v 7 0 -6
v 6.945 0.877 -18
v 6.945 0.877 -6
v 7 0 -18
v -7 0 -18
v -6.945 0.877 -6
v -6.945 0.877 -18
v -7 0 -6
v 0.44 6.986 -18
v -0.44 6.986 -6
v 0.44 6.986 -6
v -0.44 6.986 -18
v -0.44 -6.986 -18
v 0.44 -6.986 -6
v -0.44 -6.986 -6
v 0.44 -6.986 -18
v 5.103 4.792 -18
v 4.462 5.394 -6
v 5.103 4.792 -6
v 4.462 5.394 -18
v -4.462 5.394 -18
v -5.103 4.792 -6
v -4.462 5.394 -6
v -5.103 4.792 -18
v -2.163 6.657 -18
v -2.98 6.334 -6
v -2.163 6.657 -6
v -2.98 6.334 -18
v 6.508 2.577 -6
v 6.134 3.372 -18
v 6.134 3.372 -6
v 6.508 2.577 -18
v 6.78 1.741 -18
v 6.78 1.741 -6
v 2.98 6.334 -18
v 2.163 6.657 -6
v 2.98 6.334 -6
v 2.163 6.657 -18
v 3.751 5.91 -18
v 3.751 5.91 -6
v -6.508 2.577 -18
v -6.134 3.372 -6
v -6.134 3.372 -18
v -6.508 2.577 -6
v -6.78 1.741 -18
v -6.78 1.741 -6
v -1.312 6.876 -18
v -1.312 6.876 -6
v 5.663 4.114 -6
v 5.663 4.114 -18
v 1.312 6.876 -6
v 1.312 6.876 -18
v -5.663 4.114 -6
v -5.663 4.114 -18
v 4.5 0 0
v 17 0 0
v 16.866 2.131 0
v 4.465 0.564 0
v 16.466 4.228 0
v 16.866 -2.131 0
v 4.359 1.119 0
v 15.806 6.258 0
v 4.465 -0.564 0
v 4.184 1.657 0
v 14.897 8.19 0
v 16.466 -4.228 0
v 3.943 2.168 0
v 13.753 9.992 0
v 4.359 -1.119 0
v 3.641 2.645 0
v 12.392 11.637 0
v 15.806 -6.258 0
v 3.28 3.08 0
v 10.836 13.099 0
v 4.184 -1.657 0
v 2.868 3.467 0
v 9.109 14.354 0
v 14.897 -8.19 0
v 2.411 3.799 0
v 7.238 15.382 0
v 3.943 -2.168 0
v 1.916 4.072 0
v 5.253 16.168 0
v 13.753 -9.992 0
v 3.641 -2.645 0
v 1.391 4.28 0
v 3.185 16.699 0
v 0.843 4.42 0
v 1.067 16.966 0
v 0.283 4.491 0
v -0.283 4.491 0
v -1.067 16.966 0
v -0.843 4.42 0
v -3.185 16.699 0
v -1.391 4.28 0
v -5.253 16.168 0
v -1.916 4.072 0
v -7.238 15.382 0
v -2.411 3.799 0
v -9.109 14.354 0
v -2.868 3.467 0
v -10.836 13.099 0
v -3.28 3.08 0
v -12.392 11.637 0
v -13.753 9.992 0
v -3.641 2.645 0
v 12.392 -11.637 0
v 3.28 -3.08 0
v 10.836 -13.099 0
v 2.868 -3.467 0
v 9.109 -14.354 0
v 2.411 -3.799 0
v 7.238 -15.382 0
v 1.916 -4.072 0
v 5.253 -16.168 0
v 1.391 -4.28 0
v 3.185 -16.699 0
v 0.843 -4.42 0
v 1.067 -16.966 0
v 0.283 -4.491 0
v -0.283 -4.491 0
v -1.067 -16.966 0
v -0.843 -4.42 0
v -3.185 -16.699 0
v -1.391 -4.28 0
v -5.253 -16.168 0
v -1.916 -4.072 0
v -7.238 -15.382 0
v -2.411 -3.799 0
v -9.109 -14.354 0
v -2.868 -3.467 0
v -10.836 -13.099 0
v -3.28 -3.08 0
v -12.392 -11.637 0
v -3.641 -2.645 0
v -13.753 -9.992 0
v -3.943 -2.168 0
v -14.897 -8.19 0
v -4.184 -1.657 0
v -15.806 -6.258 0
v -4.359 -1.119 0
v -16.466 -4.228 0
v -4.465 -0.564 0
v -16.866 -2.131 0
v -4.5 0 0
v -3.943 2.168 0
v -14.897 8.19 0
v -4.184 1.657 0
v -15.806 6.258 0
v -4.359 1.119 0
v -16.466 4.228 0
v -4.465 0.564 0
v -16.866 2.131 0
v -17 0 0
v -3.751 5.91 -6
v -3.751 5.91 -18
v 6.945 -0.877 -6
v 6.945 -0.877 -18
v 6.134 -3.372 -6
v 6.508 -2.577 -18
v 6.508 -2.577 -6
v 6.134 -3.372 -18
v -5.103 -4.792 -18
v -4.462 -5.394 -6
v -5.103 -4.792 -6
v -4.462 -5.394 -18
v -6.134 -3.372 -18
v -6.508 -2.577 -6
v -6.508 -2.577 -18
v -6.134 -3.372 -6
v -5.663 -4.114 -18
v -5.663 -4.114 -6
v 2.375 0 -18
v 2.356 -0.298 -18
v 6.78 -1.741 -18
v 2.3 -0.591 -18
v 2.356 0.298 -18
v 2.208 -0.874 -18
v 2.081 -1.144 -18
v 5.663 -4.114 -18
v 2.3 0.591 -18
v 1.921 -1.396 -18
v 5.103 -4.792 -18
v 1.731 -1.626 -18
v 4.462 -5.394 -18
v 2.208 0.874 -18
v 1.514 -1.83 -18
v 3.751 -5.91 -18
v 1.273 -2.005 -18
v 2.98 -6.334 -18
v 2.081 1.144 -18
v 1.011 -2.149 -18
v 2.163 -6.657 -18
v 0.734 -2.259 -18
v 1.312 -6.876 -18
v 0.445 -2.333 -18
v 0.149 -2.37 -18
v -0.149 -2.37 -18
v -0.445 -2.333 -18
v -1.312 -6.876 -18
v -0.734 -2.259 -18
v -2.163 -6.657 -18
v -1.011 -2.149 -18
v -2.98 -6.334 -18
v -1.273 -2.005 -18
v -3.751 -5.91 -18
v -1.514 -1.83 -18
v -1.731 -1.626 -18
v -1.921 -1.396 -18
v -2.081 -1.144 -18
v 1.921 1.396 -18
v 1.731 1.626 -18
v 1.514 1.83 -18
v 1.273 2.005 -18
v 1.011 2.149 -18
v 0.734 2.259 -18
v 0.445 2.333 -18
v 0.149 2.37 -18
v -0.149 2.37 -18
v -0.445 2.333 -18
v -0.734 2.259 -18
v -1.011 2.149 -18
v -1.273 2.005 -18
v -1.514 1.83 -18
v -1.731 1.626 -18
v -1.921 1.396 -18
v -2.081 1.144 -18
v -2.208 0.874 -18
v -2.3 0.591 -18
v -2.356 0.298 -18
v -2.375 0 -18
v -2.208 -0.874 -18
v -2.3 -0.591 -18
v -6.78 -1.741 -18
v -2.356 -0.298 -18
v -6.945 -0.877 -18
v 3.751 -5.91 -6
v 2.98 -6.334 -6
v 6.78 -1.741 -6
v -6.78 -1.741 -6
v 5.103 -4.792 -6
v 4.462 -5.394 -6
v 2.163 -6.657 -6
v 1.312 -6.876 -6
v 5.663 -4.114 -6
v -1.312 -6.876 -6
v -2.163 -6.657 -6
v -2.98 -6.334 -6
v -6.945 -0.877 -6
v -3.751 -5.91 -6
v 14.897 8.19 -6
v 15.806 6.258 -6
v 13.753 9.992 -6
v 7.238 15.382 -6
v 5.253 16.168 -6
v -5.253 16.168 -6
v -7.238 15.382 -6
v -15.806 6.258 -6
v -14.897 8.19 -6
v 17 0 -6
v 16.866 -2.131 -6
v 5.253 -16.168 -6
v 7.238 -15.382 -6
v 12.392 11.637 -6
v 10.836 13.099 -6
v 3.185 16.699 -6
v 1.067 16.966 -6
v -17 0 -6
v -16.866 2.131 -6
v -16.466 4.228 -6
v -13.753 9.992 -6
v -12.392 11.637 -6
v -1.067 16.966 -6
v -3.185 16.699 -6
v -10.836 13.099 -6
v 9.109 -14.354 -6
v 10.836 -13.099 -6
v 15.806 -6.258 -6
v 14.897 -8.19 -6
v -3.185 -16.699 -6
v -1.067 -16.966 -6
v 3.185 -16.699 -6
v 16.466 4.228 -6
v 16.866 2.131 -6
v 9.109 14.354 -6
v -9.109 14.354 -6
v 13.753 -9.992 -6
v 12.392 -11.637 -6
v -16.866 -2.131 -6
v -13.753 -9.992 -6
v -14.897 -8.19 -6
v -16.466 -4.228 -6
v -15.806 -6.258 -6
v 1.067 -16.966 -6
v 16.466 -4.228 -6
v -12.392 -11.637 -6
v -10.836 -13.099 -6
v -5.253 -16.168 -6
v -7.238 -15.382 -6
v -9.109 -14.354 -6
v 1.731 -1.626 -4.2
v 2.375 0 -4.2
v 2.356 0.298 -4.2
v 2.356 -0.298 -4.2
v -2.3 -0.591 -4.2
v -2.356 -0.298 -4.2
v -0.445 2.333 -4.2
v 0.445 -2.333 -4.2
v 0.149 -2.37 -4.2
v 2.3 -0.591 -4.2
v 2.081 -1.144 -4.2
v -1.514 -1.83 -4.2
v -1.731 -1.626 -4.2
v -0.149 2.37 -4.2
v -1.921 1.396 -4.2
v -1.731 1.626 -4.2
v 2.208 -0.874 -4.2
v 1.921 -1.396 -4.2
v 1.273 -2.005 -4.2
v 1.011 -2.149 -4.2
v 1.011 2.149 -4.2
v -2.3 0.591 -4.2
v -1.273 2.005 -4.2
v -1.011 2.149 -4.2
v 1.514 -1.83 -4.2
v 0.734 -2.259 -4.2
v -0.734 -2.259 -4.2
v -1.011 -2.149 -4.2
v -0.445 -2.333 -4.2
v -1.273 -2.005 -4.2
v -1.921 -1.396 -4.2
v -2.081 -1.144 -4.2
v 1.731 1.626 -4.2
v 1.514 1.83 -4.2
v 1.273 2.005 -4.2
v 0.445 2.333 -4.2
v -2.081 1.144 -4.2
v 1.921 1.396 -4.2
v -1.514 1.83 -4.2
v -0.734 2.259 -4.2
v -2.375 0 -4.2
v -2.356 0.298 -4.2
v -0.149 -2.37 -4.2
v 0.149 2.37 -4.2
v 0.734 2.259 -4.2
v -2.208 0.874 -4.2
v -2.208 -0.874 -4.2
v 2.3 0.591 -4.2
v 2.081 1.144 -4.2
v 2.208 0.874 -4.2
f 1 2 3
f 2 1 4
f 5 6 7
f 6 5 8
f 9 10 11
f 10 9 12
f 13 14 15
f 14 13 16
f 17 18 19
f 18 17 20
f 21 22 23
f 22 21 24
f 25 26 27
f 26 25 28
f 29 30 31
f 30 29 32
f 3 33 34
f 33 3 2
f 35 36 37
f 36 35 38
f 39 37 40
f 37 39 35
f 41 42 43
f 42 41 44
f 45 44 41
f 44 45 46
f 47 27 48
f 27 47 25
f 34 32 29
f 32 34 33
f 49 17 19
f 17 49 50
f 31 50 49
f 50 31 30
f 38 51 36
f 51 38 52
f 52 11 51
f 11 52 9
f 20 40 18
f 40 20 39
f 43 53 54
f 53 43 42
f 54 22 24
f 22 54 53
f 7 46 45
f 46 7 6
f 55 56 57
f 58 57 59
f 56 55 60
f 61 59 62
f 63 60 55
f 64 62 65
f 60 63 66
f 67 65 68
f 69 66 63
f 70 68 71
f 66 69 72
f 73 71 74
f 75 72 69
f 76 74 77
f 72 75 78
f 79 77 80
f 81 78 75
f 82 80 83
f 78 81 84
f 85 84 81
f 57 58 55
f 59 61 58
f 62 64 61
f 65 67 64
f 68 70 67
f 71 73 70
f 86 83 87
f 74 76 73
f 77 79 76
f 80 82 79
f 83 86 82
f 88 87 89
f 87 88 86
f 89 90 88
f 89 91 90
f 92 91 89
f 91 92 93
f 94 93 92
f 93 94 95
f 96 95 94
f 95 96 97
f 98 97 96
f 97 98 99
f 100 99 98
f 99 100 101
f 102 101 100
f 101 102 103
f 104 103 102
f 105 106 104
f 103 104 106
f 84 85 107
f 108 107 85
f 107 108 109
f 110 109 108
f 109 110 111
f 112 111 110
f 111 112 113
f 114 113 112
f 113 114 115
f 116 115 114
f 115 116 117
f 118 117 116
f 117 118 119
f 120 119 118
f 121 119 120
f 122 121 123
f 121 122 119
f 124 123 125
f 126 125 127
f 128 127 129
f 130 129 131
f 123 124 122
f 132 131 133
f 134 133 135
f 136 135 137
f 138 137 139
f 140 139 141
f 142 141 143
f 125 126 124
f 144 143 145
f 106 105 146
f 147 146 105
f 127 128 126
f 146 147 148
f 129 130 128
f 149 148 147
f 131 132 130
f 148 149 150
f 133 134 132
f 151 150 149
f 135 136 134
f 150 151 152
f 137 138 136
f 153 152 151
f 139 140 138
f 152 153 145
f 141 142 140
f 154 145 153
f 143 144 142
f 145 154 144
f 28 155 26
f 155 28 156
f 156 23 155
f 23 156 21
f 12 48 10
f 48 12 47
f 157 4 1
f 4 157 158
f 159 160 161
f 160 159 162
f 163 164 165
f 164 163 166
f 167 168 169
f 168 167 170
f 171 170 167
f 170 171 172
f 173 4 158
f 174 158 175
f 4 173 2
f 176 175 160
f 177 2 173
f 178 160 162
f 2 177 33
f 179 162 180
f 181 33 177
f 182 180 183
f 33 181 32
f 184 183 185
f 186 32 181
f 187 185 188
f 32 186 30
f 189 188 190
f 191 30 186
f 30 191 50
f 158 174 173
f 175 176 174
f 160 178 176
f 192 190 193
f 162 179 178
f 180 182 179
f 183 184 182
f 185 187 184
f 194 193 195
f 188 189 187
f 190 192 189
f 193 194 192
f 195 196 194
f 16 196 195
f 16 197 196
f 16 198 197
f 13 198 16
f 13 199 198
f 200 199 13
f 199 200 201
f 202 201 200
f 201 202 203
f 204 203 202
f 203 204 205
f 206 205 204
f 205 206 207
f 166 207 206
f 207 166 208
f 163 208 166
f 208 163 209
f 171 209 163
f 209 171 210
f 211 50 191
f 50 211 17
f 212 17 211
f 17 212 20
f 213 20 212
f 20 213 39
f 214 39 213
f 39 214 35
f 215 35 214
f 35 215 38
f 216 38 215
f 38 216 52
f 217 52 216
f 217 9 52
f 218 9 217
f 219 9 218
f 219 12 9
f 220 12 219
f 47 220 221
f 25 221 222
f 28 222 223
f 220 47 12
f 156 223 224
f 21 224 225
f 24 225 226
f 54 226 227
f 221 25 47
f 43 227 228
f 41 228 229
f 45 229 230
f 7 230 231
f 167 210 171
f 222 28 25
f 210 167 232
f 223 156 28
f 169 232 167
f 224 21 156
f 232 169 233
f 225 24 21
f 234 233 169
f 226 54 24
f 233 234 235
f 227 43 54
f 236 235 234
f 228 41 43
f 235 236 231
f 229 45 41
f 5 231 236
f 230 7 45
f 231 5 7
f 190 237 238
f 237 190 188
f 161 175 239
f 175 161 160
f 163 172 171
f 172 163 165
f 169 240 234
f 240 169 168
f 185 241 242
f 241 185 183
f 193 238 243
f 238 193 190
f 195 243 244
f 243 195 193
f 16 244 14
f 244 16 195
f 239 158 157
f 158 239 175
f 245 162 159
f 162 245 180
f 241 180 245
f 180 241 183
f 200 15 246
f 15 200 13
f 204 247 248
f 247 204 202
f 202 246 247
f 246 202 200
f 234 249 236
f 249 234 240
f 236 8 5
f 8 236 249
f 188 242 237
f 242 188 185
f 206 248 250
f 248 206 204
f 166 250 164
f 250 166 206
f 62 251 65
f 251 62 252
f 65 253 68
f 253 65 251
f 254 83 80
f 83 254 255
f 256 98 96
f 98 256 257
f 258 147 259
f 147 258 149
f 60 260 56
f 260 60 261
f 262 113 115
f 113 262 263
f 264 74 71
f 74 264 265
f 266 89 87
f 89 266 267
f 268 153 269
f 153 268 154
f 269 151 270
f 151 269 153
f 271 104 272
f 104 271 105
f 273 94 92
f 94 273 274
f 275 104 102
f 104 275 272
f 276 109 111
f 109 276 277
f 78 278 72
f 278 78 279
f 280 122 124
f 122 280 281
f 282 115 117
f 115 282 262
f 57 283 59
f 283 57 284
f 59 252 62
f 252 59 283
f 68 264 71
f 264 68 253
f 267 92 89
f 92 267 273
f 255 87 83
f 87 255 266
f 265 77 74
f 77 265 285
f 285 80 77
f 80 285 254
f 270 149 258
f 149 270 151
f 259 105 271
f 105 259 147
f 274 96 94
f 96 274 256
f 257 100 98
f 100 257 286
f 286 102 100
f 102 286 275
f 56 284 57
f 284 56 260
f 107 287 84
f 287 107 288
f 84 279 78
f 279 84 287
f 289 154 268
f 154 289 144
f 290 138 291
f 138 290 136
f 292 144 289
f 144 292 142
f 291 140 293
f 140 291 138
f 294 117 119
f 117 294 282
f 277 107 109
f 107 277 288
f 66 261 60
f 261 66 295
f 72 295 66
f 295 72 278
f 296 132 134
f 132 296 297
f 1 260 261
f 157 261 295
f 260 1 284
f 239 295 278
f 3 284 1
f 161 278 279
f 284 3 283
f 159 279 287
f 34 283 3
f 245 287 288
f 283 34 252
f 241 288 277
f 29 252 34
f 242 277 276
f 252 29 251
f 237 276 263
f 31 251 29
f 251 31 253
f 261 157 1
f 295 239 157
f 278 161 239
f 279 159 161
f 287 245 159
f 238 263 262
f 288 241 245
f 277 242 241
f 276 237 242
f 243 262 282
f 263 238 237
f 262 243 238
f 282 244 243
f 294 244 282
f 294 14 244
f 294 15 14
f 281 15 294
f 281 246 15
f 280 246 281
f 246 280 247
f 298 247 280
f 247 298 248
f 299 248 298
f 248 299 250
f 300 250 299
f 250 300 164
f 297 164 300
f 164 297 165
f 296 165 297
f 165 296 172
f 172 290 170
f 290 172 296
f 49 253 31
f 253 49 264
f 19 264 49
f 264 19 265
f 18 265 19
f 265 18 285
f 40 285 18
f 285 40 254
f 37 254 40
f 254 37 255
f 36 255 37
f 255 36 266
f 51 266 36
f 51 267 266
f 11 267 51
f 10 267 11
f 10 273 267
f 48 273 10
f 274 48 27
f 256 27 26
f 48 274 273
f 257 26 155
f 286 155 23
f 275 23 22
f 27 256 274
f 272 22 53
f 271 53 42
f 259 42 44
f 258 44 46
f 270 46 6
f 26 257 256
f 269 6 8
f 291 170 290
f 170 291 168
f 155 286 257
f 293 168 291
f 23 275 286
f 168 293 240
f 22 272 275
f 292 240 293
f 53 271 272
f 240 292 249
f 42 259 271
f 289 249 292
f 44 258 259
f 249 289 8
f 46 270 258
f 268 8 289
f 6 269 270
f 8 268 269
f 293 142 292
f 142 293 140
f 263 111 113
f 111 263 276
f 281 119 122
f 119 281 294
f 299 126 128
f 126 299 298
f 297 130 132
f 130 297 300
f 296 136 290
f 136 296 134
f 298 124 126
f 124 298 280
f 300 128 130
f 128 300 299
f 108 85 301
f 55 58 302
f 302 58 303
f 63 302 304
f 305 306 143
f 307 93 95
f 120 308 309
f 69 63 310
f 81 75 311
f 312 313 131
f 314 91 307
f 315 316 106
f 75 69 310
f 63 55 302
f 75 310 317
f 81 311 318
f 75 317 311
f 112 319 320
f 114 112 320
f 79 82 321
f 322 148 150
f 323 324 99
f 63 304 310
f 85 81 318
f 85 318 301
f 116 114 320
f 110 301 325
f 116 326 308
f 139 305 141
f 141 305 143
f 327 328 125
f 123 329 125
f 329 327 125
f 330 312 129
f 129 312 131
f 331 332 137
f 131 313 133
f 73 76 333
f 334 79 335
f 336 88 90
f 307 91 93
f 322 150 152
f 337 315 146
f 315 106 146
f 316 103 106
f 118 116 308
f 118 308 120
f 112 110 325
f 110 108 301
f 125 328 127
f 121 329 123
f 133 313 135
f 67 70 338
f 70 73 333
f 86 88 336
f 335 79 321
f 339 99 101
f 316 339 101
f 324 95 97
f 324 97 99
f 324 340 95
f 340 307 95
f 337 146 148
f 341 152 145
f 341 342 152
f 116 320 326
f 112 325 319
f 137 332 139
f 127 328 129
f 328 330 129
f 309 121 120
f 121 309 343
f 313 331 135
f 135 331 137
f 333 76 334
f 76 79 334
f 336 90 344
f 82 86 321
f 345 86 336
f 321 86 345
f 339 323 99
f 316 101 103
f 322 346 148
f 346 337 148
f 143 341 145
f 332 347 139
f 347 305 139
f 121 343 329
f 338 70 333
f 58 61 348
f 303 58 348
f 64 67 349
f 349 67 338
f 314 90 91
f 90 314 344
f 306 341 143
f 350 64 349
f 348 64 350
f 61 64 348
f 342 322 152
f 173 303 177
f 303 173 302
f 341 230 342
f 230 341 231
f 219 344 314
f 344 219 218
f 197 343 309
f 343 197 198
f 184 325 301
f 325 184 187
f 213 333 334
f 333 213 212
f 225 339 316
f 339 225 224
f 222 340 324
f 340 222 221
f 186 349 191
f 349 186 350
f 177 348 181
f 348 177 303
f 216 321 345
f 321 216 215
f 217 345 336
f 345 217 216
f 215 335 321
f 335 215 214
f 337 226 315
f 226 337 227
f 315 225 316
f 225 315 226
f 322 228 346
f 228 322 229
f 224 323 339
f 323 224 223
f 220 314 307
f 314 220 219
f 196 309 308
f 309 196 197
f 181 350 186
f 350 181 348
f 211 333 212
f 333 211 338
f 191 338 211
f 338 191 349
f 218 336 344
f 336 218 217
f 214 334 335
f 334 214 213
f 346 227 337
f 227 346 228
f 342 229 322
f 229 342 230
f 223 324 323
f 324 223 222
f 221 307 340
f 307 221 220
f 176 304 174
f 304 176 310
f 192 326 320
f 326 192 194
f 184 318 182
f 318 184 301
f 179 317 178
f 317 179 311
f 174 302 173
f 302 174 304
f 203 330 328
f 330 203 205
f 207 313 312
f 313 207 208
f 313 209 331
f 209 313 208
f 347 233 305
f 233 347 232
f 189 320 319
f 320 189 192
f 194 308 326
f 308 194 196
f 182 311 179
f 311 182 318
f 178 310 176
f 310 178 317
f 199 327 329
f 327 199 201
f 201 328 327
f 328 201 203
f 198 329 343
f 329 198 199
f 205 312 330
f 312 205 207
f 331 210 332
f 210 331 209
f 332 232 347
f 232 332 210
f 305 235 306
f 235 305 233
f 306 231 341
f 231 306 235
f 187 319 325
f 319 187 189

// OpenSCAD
$fn = 50;


difference() {
	union() {
		translate(v = [0, 0, -18.0000000000]) {
			cylinder(h = 18, r = 7.0000000000);
		}
		translate(v = [0, 0, -6.0000000000]) {
			cylinder(h = 6, r = 17.0000000000);
		}
	}
	union() {
		translate(v = [0, 0, 0]) {
			rotate(a = [0, 0, 0]) {
				difference() {
					union() {
						#translate(v = [0, 0, -18.0000000000]) {
							cylinder(h = 18, r = 2.2500000000);
						}
						#translate(v = [0, 0, -4.2000000000]) {
							cylinder(h = 4.2000000000, r = 7.0000000000, r1 = 2.3750000000, r2 = 4.5000000000);
						}
						#translate(v = [0, 0, -18.0000000000]) {
							cylinder(h = 18, r = 2.3750000000);
						}
						#translate(v = [0, 0, -18.0000000000]) {
							cylinder(h = 18, r = 2.2500000000);
						}
					}
					union();
				}
			}
		}
	}
}
